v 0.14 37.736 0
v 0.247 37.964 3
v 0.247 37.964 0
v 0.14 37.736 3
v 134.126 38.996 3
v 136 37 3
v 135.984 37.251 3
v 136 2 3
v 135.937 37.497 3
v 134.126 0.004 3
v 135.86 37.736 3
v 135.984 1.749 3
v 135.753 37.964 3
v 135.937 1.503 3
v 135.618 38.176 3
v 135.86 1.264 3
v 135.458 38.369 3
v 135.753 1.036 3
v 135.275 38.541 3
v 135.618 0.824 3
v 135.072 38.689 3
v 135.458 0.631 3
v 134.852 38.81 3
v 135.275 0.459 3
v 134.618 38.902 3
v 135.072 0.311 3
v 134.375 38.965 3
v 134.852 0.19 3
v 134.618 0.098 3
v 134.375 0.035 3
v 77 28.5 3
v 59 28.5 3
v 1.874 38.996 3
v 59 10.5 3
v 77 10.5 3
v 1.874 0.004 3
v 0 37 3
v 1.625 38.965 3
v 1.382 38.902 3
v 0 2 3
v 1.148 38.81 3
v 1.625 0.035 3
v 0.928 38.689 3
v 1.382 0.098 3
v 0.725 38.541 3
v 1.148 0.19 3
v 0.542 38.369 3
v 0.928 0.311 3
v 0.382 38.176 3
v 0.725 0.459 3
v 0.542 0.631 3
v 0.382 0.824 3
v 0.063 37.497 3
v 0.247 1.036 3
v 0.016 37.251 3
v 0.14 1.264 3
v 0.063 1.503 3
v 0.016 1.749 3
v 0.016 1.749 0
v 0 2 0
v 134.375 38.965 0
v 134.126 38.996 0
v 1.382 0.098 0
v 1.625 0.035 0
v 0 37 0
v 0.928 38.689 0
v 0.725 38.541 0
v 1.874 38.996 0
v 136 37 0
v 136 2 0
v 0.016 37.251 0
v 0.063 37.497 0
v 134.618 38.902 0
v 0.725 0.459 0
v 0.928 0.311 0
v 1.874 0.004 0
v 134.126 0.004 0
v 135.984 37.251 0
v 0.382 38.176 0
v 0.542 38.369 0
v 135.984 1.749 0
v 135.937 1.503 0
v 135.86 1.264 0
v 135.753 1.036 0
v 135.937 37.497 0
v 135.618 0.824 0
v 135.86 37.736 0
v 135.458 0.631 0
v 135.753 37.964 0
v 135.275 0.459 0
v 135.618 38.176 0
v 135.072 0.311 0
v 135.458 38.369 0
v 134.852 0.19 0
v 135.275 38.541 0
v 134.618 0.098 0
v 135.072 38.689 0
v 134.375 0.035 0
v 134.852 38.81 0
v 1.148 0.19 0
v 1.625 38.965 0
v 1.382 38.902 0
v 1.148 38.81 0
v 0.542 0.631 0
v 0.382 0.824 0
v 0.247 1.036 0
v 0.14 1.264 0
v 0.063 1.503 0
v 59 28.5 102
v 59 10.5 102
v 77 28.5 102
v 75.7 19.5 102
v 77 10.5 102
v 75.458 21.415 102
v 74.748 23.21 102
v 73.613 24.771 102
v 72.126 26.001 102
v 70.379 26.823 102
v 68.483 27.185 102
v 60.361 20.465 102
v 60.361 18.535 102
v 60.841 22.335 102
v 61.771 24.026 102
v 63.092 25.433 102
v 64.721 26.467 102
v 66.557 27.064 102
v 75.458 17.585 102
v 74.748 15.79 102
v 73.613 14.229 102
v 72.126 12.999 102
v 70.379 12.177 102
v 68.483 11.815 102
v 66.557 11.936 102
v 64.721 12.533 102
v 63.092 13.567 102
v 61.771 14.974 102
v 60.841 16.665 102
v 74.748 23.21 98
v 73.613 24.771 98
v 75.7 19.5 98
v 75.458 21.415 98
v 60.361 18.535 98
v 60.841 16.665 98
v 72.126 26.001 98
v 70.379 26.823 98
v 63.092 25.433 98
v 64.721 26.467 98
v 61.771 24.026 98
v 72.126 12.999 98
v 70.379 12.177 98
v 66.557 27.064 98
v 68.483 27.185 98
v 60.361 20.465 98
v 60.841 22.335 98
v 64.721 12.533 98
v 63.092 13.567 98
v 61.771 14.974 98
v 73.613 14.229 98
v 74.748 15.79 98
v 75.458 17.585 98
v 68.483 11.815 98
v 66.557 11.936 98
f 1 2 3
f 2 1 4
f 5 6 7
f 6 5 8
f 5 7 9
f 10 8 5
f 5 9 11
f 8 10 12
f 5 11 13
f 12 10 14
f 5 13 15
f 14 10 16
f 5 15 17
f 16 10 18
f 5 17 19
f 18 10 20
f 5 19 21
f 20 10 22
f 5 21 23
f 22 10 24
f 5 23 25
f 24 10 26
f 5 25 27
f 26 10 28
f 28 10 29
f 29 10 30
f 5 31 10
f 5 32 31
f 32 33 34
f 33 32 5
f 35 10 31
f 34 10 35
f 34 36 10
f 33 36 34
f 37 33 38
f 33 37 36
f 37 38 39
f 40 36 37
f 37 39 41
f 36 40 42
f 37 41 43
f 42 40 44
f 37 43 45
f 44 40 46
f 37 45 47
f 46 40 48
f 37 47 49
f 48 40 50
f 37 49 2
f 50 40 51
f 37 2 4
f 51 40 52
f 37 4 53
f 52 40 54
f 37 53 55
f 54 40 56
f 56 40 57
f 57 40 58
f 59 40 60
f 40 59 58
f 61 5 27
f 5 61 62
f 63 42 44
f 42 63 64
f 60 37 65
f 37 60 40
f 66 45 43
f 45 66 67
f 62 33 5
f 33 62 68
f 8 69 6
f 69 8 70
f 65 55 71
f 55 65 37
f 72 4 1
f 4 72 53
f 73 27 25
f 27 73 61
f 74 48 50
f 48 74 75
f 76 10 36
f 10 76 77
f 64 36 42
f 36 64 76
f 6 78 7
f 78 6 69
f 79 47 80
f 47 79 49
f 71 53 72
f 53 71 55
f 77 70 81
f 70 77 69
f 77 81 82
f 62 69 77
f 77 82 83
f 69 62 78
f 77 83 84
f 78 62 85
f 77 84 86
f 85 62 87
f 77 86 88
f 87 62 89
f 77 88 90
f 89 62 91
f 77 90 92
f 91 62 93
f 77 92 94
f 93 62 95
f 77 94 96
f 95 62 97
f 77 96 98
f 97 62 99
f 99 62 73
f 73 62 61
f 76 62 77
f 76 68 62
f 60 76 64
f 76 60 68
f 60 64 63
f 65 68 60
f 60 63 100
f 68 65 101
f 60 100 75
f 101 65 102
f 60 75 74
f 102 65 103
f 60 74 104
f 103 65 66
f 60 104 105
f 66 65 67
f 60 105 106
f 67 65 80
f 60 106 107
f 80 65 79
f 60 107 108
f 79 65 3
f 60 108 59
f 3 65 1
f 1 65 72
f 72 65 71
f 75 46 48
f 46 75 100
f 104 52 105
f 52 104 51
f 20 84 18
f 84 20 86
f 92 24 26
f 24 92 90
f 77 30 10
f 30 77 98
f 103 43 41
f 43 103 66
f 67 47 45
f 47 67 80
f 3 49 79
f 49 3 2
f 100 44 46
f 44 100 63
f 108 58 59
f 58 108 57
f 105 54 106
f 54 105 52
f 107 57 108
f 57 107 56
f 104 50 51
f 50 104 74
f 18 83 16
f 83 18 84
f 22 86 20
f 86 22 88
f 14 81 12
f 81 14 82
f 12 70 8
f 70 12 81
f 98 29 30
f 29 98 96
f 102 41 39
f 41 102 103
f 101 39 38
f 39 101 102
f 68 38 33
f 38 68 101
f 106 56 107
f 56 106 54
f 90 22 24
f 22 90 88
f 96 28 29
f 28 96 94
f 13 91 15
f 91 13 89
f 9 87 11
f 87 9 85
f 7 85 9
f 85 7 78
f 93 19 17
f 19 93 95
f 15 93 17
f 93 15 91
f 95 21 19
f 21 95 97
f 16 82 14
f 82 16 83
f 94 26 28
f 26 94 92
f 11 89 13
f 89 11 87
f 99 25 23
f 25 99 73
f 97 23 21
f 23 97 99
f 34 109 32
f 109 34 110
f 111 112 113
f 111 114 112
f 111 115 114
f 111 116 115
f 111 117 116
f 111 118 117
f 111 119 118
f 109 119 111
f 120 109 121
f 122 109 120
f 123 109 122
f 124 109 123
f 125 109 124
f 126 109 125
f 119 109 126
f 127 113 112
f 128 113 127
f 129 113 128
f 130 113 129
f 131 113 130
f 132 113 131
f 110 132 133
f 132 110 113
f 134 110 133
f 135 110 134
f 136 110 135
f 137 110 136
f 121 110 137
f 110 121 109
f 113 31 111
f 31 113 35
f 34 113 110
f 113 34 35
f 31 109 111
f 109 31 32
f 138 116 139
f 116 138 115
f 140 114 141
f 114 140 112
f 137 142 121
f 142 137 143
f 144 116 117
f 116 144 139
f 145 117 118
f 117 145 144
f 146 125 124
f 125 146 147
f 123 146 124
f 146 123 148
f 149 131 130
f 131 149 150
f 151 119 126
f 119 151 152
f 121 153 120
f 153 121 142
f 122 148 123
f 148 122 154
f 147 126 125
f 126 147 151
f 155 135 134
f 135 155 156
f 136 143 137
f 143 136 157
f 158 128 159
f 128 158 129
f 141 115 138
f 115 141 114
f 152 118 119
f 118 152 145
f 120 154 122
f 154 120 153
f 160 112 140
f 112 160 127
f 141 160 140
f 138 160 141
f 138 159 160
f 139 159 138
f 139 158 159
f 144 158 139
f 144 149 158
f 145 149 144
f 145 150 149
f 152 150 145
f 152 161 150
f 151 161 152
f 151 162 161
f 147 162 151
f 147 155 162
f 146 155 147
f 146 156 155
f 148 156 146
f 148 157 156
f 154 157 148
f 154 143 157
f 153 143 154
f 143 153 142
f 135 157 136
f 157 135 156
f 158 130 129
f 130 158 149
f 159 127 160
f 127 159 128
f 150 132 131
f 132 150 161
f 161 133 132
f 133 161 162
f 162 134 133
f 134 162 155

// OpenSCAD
width = 39;
length = 136;
height = 3;
floorThickness = 3;

//Based on magnet size:
pillarHeight = 105 - floorThickness;
pillarSideLength = 18;
magnetBaseInnerDiameter = 15.4;
magnetHeight = 4.0;

difference() {
    union(){
        $fn=50;
        minkowski()
        {
          translate([2,2,0])
            cube([length-4, width-4, height - 1]);
          cylinder(r=2,h=1);
        }
       
        translate([length/2 - ((pillarSideLength)/2), width/2 - ((pillarSideLength)/2), 0])
            cube([pillarSideLength, pillarSideLength, pillarHeight]);
            

    }
    translate([length/2,  width/2, pillarHeight - magnetHeight])
        cylinder(magnetHeight, d=magnetBaseInnerDiameter);
}
